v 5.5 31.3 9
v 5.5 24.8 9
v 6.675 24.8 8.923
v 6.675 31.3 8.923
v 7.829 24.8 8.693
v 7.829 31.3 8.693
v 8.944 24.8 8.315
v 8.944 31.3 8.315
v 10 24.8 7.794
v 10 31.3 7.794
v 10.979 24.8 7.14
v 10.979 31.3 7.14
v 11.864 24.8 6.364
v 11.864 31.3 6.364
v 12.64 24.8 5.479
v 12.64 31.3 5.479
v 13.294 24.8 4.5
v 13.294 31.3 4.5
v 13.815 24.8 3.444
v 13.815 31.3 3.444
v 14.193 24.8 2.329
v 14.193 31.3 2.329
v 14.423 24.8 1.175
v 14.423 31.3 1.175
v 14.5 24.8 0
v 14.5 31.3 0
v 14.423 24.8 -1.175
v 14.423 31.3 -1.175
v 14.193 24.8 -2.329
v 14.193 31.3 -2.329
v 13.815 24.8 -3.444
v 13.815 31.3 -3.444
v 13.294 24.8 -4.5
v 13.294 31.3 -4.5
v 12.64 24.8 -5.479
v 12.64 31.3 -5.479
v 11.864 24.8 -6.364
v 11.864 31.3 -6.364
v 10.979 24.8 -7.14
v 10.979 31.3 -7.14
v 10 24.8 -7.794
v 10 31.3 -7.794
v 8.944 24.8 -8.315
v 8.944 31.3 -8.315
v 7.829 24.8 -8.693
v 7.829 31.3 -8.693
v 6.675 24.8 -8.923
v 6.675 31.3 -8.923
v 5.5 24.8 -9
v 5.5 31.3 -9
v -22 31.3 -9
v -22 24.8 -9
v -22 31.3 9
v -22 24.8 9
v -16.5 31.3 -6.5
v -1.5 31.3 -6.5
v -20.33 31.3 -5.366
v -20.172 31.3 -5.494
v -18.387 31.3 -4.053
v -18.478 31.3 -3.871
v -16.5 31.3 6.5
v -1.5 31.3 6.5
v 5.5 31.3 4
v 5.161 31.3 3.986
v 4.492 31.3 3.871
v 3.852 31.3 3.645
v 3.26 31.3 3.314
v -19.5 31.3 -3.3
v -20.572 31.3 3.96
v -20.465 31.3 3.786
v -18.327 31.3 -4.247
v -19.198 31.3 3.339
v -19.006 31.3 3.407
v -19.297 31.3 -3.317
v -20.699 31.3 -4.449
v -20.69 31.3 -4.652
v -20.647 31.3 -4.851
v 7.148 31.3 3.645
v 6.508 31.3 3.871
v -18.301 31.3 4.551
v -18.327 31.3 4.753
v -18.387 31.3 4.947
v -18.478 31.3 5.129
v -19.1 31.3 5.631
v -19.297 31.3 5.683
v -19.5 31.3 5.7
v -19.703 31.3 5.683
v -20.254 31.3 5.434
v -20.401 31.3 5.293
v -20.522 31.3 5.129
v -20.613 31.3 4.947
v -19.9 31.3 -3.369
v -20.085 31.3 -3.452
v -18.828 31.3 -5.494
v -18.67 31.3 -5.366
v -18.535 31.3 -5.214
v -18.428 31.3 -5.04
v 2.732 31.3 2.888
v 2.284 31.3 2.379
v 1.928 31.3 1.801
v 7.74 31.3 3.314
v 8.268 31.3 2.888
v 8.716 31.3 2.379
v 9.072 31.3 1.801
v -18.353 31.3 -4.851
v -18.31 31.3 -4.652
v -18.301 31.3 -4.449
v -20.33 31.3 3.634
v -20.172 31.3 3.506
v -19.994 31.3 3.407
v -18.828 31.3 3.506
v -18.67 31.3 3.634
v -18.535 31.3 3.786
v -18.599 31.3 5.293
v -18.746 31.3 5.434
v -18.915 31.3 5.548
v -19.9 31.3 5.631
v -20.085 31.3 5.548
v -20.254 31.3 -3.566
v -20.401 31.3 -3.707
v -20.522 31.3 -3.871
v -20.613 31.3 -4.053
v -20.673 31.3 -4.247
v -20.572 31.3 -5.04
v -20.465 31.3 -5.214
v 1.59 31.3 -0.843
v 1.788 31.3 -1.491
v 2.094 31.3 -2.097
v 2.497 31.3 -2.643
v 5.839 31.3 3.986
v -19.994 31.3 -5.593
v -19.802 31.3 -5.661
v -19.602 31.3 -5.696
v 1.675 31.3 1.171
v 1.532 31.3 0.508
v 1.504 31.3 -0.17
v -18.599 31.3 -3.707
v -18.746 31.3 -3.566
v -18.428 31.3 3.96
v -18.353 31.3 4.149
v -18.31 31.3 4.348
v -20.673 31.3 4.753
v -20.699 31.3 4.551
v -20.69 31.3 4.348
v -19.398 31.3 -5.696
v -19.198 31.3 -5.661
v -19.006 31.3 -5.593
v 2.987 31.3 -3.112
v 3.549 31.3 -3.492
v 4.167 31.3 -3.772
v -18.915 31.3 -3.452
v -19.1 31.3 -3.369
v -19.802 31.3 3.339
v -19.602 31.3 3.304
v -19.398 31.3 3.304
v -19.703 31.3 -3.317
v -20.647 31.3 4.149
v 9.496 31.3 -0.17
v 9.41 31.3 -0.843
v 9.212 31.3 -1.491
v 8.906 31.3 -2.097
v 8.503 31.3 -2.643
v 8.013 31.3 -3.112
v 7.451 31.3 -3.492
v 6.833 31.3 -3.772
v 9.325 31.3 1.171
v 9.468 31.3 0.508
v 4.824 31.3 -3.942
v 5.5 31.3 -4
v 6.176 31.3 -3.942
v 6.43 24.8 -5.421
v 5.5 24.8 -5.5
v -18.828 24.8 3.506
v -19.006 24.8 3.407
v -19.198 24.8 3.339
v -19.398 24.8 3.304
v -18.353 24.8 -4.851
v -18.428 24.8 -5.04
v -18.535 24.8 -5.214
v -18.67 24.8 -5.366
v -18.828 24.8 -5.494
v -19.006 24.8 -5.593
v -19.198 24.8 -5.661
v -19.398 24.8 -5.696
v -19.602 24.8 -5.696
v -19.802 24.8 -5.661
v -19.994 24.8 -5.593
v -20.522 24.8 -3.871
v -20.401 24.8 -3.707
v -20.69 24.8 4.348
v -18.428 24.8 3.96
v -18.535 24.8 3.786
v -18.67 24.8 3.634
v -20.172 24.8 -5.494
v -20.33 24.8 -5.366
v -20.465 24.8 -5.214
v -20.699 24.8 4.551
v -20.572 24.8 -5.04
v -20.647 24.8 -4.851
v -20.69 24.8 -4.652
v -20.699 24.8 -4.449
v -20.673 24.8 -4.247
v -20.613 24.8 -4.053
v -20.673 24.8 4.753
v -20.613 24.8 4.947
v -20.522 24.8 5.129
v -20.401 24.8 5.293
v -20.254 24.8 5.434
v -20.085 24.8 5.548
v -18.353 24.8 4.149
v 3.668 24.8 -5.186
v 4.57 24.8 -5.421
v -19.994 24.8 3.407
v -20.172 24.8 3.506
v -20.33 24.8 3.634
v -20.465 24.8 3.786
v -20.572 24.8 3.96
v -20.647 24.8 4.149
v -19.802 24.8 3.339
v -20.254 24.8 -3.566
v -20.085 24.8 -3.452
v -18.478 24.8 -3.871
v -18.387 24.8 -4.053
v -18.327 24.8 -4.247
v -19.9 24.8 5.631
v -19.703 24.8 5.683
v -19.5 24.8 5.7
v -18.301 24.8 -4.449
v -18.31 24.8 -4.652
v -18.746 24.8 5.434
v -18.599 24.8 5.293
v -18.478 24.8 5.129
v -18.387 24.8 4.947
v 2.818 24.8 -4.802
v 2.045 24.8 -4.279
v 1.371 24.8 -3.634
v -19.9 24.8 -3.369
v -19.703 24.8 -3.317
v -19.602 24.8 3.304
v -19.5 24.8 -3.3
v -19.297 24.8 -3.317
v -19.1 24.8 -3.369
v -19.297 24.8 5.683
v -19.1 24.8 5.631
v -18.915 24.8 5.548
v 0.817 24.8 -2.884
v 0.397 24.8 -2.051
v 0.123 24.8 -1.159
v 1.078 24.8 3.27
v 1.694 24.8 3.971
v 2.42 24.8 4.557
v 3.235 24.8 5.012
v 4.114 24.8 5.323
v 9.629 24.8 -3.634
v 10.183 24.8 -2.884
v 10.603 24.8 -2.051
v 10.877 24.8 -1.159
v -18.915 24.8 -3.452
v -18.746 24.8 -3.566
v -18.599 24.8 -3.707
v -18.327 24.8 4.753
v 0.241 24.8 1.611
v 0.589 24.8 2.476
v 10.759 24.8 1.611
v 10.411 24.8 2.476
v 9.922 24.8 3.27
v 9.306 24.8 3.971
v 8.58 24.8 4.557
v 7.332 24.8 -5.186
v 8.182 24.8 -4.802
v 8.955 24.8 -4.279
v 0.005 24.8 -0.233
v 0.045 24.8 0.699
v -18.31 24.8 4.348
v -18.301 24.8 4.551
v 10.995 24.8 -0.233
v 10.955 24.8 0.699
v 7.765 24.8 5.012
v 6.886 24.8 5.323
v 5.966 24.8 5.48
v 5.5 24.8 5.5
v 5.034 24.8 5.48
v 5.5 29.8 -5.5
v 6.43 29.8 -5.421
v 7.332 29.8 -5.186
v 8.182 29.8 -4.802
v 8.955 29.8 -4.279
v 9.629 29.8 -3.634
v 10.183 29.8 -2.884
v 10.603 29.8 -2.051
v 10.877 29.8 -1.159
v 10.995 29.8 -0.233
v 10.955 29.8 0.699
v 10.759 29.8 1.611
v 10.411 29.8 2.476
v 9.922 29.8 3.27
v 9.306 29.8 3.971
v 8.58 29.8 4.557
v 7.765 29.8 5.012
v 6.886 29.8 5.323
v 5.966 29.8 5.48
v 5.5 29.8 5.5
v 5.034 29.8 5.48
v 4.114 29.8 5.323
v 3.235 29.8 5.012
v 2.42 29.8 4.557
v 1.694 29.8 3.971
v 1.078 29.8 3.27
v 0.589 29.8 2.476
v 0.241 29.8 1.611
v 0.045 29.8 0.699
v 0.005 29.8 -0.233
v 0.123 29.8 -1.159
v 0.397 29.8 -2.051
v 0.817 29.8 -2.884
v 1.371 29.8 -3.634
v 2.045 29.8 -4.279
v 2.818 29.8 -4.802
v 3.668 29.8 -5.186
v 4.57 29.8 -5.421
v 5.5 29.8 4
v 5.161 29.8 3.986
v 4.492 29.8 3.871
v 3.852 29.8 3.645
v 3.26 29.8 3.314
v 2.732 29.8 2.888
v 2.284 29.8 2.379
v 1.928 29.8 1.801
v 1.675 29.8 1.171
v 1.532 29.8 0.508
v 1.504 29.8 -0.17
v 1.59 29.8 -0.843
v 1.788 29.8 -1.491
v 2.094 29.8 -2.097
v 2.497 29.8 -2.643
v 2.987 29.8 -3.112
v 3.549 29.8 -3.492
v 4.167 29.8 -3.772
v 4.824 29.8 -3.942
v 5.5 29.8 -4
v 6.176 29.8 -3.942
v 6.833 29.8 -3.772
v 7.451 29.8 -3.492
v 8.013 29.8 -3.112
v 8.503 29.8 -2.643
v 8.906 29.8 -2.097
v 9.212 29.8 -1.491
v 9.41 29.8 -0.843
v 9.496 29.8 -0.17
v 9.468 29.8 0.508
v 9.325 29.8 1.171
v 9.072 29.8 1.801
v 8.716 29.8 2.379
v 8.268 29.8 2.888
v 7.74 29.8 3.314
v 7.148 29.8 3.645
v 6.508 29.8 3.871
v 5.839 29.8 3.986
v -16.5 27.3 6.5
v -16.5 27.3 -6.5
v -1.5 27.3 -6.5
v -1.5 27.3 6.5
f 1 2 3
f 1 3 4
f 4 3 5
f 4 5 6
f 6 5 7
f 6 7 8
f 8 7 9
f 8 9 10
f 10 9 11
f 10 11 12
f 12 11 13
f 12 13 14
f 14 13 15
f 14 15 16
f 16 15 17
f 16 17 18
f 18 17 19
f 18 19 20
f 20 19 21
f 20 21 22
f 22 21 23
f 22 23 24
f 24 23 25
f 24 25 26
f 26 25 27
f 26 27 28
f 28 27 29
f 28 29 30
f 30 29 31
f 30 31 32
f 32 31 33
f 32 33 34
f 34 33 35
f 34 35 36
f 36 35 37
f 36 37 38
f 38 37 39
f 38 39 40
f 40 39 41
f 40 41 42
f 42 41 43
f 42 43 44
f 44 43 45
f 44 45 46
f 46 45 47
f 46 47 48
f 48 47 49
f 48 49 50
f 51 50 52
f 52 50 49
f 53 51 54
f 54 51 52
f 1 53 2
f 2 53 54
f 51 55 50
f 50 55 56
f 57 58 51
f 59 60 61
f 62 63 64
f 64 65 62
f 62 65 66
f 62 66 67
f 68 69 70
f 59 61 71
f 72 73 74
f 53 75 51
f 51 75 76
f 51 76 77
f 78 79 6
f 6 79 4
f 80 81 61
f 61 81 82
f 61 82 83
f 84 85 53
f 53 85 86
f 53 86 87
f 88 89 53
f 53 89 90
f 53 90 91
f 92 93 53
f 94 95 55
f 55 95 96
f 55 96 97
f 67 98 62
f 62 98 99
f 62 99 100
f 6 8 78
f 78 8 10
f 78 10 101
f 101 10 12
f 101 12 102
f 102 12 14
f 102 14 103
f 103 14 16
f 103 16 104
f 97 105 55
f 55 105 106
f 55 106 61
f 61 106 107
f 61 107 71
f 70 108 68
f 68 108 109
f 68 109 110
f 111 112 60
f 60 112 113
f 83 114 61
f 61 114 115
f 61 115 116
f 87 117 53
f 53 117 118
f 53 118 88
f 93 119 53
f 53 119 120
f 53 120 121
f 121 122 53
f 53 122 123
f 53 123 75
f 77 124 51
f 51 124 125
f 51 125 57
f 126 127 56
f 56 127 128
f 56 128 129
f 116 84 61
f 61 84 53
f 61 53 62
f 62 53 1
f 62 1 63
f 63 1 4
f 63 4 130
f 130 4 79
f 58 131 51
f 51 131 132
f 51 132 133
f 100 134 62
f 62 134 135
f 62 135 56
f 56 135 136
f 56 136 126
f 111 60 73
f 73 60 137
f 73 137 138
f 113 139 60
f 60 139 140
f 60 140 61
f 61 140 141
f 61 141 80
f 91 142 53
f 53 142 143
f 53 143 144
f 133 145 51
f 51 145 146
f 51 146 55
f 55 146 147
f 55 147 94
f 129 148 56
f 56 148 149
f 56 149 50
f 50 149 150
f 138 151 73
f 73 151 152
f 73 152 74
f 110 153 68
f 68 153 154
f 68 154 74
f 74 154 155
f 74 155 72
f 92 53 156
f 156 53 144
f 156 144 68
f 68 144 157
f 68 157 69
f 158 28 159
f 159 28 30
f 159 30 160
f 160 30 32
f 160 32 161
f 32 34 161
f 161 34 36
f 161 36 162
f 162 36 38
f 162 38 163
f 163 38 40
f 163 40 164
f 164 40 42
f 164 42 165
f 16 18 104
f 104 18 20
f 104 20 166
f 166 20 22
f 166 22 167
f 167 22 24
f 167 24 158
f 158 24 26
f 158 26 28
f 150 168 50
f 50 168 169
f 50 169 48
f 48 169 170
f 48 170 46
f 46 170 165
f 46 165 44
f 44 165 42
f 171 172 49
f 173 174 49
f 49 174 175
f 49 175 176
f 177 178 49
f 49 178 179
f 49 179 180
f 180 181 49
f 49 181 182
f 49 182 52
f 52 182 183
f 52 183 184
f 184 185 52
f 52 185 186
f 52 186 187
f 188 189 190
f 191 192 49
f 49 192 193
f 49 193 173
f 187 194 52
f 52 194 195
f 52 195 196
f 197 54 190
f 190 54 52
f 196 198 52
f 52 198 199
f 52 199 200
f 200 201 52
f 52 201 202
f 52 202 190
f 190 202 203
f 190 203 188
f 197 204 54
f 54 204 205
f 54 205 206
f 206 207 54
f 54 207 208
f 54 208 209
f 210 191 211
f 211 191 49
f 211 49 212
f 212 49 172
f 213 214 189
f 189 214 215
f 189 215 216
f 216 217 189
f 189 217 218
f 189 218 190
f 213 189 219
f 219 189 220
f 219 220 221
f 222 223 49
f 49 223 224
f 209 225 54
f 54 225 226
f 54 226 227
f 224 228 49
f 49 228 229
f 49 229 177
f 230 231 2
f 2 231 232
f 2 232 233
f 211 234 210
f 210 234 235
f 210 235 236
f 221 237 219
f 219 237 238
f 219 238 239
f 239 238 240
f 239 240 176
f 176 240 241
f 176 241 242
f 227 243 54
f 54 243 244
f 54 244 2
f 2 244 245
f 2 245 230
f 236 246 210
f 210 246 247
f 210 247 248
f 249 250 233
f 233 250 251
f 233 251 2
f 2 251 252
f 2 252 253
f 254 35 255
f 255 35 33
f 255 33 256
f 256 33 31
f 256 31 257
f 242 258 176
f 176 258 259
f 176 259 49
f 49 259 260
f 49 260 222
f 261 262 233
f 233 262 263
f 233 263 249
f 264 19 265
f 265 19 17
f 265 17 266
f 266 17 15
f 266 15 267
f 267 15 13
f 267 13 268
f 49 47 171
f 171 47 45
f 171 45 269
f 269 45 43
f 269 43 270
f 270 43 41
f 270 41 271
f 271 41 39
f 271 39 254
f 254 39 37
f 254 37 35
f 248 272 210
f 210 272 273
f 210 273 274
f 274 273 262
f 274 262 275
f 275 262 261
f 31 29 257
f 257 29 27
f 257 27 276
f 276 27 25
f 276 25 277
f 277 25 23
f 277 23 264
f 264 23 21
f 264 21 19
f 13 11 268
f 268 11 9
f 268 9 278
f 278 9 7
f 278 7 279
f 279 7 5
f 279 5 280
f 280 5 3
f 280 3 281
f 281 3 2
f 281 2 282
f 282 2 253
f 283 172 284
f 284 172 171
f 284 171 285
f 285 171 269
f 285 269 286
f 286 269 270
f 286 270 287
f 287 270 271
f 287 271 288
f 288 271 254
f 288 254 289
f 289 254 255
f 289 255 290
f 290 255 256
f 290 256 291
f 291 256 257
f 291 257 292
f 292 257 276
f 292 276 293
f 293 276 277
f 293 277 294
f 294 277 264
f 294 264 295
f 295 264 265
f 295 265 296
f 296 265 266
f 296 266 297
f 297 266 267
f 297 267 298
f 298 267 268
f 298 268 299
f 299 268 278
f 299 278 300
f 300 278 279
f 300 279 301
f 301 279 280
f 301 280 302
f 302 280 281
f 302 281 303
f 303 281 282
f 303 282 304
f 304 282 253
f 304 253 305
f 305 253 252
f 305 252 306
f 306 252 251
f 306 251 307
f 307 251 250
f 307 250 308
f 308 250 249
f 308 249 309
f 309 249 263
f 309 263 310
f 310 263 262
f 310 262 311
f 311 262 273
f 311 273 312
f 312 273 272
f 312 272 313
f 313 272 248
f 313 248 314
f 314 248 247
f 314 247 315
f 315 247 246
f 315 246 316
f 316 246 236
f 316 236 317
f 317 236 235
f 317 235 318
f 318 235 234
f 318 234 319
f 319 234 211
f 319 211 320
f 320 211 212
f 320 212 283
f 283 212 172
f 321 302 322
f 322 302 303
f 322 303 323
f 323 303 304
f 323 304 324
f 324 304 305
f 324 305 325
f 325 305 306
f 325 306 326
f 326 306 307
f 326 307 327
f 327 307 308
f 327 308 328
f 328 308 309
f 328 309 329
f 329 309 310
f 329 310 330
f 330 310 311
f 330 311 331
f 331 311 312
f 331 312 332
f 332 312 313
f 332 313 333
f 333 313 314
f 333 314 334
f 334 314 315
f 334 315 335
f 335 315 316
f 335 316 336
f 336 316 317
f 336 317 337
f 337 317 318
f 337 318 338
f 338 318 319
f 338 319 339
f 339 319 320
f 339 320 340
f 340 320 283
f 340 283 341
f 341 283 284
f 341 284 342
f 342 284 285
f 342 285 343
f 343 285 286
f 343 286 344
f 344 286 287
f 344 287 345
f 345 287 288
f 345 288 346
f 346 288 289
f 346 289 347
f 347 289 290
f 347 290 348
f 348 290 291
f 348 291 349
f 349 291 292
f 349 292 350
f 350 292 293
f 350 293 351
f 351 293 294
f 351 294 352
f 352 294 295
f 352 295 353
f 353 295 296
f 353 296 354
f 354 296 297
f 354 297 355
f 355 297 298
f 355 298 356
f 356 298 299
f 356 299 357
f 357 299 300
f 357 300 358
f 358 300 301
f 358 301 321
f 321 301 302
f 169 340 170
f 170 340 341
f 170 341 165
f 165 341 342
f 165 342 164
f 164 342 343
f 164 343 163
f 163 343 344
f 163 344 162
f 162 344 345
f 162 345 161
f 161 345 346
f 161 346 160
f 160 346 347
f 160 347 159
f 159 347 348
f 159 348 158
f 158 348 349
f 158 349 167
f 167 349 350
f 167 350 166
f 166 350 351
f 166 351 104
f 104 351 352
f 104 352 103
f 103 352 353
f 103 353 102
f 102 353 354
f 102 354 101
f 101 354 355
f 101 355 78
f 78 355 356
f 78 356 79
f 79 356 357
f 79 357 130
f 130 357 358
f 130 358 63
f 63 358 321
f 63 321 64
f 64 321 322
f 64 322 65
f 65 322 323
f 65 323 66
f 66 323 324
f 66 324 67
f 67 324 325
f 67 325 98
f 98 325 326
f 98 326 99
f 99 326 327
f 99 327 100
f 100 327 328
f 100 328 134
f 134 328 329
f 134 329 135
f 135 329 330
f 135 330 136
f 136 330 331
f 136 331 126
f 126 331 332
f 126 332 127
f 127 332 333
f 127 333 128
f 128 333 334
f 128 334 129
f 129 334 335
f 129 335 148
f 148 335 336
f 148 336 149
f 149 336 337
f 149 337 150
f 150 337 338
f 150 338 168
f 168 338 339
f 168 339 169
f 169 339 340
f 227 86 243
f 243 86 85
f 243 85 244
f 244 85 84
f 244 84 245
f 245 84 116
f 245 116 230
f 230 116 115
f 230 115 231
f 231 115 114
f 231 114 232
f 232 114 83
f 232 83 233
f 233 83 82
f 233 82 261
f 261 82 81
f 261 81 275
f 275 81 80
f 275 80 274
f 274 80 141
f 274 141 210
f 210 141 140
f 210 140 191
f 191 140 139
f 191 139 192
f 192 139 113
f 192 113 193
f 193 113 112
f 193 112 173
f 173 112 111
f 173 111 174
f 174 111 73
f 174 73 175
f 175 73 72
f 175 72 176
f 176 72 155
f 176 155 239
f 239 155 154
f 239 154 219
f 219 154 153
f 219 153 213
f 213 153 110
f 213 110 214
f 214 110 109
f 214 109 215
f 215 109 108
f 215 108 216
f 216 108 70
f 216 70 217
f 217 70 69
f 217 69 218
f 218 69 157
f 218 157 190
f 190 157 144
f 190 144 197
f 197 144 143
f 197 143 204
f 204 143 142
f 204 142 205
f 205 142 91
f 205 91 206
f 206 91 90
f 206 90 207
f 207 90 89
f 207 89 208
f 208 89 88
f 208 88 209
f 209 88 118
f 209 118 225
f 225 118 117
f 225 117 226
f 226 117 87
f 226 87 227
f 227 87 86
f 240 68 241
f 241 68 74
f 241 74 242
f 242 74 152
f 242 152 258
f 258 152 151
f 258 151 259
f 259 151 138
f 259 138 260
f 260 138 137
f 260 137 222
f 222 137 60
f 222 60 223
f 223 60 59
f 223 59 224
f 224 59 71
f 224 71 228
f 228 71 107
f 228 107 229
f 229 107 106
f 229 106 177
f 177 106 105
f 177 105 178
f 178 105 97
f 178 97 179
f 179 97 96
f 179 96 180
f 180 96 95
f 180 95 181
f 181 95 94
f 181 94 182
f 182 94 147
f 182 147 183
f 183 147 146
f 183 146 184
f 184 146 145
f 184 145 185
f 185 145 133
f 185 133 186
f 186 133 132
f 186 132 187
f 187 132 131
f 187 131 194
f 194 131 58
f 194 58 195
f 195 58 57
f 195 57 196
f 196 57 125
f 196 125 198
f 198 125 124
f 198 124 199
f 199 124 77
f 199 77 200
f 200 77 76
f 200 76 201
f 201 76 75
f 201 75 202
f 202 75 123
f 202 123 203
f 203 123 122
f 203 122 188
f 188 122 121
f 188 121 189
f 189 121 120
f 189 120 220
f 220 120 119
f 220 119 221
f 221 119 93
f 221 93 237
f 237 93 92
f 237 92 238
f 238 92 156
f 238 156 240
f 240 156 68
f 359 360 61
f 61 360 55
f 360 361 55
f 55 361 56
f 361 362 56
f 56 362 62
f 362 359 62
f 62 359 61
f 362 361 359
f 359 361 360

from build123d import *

# Parameters (mm, degrees)
BOSS_EXTRUDE1_DEPTH  = 6.5
SKETCH2_R            = 5.5
CUT_EXTRUDE2_DEPTH   = 5
SKETCH3_R            = 4
CUT_EXTRUDE4_DEPTH   = 1.5
M2_CLEARANCE_HOLE1_D = 2.4
M2_CLEARANCE_HOLE2_D = 2.4
SKETCH8_W            = 15
SKETCH8_H            = 13
CUT_EXTRUDE5_DEPTH   = 4


with BuildPart() as part:
    # Sketch1 → Boss-Extrude1 (new body)
    with BuildSketch(Plane(origin=(0, 24.8, 0), x_dir=(1, 0, 0), z_dir=(0, 1, 0))):
        with BuildLine():
            Line((5.5, 9), (-22, 9))
            Line((-22, 9), (-22, -9))
            Line((-22, -9), (5.5, -9))
            ThreePointArc((5.5, -9), (14.5, 0), (5.5, 9))
        make_face()
    extrude(amount=BOSS_EXTRUDE1_DEPTH)

    # Sketch2 → Cut-Extrude2 (cut)
    with BuildSketch(Plane(origin=(0, 24.8, 0), x_dir=(1, 0, 0), z_dir=(0, 1, 0))):
        with Locations(Location((5.5, 0, 0), (0, 0, 270))):
            Circle(SKETCH2_R)
    extrude(amount=CUT_EXTRUDE2_DEPTH, mode=Mode.SUBTRACT)

    # Sketch3 → Cut-Extrude4 (cut)
    with BuildSketch(Plane(origin=(0, 29.8, 0), x_dir=(1, 0, 0), z_dir=(0, 1, 0))):
        with Locations(Location((5.5, 0, 0), (0, 0, 270))):
            Circle(SKETCH3_R)
    extrude(amount=CUT_EXTRUDE4_DEPTH, mode=Mode.SUBTRACT)

    # M2 Clearance Hole1 (through all)
    with Locations(Plane(origin=(0, 31.3, 0), x_dir=(1, 0, 0), z_dir=(0, 1, 0))):
        with Locations((-19.5, -4.5)):
            Hole(M2_CLEARANCE_HOLE1_D / 2)

    # M2 Clearance Hole2 (through all)
    with Locations(Plane(origin=(0, 31.3, 0), x_dir=(1, 0, 0), z_dir=(0, 1, 0))):
        with Locations((-19.5, 4.5)):
            Hole(M2_CLEARANCE_HOLE2_D / 2)

    # Sketch8 → Cut-Extrude5 (cut)
    with BuildSketch(Plane(origin=(0, 31.3, 0), x_dir=(1, 0, 0), z_dir=(0, 1, 0))):
        with Locations((-9, 0)):
            Rectangle(SKETCH8_W, SKETCH8_H)
    extrude(amount=-CUT_EXTRUDE5_DEPTH, mode=Mode.SUBTRACT)


solid = part.part
